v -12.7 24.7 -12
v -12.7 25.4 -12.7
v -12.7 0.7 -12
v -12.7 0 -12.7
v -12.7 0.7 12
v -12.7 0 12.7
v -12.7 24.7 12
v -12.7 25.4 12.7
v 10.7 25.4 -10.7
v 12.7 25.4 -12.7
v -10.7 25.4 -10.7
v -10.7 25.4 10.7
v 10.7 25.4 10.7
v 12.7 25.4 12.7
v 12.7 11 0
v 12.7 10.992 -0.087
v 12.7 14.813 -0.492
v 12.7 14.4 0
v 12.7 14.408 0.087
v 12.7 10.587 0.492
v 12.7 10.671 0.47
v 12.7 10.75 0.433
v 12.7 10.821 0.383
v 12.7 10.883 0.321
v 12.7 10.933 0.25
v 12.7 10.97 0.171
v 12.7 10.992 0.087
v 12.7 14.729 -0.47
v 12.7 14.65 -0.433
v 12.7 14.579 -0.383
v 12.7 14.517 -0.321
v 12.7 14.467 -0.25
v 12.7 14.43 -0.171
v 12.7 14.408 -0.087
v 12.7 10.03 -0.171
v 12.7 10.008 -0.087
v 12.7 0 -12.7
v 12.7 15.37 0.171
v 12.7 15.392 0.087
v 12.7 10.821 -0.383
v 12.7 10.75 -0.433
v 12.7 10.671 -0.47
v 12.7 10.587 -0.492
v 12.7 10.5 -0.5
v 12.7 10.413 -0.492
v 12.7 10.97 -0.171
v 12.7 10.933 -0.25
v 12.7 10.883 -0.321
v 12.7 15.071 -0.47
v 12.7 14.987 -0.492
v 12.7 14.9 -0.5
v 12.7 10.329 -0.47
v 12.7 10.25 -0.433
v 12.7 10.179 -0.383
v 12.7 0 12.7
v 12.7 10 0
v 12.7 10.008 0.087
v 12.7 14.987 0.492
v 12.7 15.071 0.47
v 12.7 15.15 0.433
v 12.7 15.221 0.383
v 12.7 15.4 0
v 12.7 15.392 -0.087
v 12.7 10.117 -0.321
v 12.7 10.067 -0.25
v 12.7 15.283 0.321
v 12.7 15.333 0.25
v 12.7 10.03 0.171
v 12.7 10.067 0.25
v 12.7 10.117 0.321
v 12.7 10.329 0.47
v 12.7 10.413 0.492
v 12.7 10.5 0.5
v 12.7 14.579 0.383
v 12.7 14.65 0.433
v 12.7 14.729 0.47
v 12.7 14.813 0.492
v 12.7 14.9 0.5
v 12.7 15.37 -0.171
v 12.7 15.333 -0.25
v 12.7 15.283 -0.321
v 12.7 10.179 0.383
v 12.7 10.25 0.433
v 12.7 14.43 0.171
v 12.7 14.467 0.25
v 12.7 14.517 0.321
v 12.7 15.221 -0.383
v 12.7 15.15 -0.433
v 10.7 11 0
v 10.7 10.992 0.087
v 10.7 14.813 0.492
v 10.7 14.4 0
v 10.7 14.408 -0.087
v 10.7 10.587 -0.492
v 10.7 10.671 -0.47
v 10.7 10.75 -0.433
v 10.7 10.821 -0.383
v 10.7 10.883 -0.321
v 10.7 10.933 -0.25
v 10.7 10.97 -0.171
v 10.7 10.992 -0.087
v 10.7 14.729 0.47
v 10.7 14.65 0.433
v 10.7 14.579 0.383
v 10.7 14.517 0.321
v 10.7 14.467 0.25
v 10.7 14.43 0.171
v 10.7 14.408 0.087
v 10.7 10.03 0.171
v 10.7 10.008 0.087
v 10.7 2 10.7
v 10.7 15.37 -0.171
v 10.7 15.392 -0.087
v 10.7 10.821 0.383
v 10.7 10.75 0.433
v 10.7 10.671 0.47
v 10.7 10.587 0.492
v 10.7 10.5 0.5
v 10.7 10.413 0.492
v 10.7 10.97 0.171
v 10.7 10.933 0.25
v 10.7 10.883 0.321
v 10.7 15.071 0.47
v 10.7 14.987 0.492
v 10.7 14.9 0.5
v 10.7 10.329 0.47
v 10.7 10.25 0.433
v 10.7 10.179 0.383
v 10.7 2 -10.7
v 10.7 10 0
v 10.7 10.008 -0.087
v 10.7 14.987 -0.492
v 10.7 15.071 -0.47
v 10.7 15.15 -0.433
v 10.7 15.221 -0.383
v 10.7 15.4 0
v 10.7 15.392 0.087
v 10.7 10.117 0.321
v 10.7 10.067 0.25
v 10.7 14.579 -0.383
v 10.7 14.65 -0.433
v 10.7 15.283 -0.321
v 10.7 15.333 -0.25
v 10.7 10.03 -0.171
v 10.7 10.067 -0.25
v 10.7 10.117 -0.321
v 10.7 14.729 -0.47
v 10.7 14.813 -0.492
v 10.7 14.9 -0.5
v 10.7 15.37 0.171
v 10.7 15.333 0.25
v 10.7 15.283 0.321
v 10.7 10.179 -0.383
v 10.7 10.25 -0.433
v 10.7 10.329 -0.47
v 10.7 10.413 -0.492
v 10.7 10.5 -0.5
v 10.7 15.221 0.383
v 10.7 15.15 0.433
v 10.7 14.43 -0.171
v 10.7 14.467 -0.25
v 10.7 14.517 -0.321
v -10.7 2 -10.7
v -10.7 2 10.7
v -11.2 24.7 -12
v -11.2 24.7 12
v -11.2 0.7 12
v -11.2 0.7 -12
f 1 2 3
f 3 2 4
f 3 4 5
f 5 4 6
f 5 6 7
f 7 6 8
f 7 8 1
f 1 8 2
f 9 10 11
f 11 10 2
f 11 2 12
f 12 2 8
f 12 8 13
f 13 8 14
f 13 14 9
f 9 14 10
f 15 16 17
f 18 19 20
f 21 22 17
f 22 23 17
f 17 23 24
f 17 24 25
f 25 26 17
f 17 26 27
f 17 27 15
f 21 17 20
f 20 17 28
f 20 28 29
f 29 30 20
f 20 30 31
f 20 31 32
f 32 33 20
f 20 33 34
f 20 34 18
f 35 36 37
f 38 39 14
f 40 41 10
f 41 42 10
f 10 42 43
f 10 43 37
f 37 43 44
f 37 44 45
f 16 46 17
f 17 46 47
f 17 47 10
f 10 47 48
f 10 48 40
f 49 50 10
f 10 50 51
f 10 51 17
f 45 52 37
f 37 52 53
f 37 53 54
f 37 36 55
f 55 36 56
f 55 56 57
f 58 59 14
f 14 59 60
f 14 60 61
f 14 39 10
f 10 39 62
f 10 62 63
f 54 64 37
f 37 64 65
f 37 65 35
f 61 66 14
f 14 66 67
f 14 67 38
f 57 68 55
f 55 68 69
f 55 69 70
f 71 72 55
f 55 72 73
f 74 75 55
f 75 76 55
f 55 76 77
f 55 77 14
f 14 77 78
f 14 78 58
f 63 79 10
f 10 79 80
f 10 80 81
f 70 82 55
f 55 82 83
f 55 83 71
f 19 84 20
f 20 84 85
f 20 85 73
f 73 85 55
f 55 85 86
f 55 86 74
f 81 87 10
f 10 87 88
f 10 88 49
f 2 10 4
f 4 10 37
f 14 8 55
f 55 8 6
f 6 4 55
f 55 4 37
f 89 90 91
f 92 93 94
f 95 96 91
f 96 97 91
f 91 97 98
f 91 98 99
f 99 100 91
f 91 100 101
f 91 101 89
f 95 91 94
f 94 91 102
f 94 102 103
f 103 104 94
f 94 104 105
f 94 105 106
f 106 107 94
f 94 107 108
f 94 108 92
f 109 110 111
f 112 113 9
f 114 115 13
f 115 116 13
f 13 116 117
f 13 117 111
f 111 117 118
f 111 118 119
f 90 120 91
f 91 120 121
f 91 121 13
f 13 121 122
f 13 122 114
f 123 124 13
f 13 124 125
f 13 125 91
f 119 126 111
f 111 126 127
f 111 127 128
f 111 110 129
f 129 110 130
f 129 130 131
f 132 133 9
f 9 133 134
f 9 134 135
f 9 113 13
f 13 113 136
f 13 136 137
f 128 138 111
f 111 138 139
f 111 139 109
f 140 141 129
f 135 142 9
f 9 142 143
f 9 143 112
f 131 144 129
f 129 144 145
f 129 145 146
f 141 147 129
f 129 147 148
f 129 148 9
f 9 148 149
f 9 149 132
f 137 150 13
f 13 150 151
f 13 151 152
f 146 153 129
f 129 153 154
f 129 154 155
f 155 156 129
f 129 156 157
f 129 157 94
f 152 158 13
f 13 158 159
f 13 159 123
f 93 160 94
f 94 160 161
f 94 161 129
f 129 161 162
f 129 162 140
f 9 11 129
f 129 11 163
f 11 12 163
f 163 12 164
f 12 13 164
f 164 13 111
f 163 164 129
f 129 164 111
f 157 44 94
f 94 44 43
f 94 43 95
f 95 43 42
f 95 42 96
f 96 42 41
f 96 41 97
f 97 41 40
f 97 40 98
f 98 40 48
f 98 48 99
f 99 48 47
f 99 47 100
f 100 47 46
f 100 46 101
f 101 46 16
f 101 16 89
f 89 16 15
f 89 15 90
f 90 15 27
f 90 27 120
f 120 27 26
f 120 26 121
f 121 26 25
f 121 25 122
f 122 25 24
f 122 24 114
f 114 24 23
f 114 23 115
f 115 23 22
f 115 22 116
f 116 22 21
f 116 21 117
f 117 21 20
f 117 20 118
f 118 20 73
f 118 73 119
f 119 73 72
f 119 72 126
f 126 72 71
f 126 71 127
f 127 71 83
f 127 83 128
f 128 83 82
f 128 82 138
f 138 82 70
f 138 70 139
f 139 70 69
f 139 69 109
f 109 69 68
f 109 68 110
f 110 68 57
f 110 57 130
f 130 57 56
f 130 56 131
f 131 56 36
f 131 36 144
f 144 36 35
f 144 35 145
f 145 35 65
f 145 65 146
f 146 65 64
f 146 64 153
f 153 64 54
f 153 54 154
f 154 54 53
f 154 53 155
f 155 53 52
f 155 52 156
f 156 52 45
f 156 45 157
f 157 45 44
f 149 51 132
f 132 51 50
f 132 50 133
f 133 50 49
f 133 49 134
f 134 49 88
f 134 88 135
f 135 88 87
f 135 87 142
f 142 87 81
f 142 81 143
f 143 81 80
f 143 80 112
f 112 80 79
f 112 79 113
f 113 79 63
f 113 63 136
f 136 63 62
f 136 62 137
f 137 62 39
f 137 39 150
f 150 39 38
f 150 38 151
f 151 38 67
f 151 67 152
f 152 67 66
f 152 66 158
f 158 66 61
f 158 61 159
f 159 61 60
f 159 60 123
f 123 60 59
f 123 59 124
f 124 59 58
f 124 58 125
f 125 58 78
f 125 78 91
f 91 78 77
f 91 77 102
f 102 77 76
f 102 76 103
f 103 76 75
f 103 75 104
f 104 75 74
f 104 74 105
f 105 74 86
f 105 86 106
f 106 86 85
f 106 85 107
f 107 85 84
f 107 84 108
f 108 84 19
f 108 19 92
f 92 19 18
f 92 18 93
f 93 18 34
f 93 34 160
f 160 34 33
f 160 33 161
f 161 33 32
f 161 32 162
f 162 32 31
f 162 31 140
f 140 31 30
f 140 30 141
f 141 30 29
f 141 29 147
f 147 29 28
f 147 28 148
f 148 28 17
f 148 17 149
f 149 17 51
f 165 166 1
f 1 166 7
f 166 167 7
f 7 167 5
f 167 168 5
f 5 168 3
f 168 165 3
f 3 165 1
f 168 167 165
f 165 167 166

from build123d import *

# Parameters (mm, degrees)
SKETCH1_W           = 25.4
SKETCH1_H           = 25.4
BOSS_EXTRUDE1_DEPTH = 25.4
SHELL1_T            = -2
SKETCH2_R           = 0.5
CUT_EXTRUDE1_DEPTH  = 6.4
SKETCH3_R           = 0.5
CUT_EXTRUDE2_DEPTH  = 6.4
SKETCH5_W           = 24
SKETCH5_H           = 24
CUT_EXTRUDE3_DEPTH  = 1.5


with BuildPart() as part:
    # Sketch1 → Boss-Extrude1 (new body)
    with BuildSketch(Plane(origin=(0, 0, 0), x_dir=(1, 0, 0), z_dir=(0, 1, 0))):
        Rectangle(SKETCH1_W, SKETCH1_H)
    extrude(amount=BOSS_EXTRUDE1_DEPTH)

    # Shell1
    shell1_openings = [part.faces().sort_by_distance(p)[0] for p in [
        (0, 25.4, 0),
    ]]
    offset(amount=SHELL1_T, openings=shell1_openings, kind=Kind.INTERSECTION)

    # Sketch2 → Cut-Extrude1 (cut)
    with BuildSketch(Plane(origin=(12.7, 0, 0), x_dir=(0, 0, -1), z_dir=(1, 0, 0))):
        with Locations((0, 10.5)):
            Circle(SKETCH2_R)
    extrude(amount=-CUT_EXTRUDE1_DEPTH, mode=Mode.SUBTRACT)

    # Sketch3 → Cut-Extrude2 (cut)
    with BuildSketch(Plane(origin=(12.7, 0, 0), x_dir=(0, 0, -1), z_dir=(1, 0, 0))):
        with Locations((0, 14.9)):
            Circle(SKETCH3_R)
    extrude(amount=-CUT_EXTRUDE2_DEPTH, mode=Mode.SUBTRACT)

    # Sketch5 → Cut-Extrude3 (cut)
    with BuildSketch(Plane.ZY.offset(12.7)):
        with Locations((0, 12.7)):
            Rectangle(SKETCH5_W, SKETCH5_H)
    extrude(amount=-CUT_EXTRUDE3_DEPTH, mode=Mode.SUBTRACT)


solid = part.part
